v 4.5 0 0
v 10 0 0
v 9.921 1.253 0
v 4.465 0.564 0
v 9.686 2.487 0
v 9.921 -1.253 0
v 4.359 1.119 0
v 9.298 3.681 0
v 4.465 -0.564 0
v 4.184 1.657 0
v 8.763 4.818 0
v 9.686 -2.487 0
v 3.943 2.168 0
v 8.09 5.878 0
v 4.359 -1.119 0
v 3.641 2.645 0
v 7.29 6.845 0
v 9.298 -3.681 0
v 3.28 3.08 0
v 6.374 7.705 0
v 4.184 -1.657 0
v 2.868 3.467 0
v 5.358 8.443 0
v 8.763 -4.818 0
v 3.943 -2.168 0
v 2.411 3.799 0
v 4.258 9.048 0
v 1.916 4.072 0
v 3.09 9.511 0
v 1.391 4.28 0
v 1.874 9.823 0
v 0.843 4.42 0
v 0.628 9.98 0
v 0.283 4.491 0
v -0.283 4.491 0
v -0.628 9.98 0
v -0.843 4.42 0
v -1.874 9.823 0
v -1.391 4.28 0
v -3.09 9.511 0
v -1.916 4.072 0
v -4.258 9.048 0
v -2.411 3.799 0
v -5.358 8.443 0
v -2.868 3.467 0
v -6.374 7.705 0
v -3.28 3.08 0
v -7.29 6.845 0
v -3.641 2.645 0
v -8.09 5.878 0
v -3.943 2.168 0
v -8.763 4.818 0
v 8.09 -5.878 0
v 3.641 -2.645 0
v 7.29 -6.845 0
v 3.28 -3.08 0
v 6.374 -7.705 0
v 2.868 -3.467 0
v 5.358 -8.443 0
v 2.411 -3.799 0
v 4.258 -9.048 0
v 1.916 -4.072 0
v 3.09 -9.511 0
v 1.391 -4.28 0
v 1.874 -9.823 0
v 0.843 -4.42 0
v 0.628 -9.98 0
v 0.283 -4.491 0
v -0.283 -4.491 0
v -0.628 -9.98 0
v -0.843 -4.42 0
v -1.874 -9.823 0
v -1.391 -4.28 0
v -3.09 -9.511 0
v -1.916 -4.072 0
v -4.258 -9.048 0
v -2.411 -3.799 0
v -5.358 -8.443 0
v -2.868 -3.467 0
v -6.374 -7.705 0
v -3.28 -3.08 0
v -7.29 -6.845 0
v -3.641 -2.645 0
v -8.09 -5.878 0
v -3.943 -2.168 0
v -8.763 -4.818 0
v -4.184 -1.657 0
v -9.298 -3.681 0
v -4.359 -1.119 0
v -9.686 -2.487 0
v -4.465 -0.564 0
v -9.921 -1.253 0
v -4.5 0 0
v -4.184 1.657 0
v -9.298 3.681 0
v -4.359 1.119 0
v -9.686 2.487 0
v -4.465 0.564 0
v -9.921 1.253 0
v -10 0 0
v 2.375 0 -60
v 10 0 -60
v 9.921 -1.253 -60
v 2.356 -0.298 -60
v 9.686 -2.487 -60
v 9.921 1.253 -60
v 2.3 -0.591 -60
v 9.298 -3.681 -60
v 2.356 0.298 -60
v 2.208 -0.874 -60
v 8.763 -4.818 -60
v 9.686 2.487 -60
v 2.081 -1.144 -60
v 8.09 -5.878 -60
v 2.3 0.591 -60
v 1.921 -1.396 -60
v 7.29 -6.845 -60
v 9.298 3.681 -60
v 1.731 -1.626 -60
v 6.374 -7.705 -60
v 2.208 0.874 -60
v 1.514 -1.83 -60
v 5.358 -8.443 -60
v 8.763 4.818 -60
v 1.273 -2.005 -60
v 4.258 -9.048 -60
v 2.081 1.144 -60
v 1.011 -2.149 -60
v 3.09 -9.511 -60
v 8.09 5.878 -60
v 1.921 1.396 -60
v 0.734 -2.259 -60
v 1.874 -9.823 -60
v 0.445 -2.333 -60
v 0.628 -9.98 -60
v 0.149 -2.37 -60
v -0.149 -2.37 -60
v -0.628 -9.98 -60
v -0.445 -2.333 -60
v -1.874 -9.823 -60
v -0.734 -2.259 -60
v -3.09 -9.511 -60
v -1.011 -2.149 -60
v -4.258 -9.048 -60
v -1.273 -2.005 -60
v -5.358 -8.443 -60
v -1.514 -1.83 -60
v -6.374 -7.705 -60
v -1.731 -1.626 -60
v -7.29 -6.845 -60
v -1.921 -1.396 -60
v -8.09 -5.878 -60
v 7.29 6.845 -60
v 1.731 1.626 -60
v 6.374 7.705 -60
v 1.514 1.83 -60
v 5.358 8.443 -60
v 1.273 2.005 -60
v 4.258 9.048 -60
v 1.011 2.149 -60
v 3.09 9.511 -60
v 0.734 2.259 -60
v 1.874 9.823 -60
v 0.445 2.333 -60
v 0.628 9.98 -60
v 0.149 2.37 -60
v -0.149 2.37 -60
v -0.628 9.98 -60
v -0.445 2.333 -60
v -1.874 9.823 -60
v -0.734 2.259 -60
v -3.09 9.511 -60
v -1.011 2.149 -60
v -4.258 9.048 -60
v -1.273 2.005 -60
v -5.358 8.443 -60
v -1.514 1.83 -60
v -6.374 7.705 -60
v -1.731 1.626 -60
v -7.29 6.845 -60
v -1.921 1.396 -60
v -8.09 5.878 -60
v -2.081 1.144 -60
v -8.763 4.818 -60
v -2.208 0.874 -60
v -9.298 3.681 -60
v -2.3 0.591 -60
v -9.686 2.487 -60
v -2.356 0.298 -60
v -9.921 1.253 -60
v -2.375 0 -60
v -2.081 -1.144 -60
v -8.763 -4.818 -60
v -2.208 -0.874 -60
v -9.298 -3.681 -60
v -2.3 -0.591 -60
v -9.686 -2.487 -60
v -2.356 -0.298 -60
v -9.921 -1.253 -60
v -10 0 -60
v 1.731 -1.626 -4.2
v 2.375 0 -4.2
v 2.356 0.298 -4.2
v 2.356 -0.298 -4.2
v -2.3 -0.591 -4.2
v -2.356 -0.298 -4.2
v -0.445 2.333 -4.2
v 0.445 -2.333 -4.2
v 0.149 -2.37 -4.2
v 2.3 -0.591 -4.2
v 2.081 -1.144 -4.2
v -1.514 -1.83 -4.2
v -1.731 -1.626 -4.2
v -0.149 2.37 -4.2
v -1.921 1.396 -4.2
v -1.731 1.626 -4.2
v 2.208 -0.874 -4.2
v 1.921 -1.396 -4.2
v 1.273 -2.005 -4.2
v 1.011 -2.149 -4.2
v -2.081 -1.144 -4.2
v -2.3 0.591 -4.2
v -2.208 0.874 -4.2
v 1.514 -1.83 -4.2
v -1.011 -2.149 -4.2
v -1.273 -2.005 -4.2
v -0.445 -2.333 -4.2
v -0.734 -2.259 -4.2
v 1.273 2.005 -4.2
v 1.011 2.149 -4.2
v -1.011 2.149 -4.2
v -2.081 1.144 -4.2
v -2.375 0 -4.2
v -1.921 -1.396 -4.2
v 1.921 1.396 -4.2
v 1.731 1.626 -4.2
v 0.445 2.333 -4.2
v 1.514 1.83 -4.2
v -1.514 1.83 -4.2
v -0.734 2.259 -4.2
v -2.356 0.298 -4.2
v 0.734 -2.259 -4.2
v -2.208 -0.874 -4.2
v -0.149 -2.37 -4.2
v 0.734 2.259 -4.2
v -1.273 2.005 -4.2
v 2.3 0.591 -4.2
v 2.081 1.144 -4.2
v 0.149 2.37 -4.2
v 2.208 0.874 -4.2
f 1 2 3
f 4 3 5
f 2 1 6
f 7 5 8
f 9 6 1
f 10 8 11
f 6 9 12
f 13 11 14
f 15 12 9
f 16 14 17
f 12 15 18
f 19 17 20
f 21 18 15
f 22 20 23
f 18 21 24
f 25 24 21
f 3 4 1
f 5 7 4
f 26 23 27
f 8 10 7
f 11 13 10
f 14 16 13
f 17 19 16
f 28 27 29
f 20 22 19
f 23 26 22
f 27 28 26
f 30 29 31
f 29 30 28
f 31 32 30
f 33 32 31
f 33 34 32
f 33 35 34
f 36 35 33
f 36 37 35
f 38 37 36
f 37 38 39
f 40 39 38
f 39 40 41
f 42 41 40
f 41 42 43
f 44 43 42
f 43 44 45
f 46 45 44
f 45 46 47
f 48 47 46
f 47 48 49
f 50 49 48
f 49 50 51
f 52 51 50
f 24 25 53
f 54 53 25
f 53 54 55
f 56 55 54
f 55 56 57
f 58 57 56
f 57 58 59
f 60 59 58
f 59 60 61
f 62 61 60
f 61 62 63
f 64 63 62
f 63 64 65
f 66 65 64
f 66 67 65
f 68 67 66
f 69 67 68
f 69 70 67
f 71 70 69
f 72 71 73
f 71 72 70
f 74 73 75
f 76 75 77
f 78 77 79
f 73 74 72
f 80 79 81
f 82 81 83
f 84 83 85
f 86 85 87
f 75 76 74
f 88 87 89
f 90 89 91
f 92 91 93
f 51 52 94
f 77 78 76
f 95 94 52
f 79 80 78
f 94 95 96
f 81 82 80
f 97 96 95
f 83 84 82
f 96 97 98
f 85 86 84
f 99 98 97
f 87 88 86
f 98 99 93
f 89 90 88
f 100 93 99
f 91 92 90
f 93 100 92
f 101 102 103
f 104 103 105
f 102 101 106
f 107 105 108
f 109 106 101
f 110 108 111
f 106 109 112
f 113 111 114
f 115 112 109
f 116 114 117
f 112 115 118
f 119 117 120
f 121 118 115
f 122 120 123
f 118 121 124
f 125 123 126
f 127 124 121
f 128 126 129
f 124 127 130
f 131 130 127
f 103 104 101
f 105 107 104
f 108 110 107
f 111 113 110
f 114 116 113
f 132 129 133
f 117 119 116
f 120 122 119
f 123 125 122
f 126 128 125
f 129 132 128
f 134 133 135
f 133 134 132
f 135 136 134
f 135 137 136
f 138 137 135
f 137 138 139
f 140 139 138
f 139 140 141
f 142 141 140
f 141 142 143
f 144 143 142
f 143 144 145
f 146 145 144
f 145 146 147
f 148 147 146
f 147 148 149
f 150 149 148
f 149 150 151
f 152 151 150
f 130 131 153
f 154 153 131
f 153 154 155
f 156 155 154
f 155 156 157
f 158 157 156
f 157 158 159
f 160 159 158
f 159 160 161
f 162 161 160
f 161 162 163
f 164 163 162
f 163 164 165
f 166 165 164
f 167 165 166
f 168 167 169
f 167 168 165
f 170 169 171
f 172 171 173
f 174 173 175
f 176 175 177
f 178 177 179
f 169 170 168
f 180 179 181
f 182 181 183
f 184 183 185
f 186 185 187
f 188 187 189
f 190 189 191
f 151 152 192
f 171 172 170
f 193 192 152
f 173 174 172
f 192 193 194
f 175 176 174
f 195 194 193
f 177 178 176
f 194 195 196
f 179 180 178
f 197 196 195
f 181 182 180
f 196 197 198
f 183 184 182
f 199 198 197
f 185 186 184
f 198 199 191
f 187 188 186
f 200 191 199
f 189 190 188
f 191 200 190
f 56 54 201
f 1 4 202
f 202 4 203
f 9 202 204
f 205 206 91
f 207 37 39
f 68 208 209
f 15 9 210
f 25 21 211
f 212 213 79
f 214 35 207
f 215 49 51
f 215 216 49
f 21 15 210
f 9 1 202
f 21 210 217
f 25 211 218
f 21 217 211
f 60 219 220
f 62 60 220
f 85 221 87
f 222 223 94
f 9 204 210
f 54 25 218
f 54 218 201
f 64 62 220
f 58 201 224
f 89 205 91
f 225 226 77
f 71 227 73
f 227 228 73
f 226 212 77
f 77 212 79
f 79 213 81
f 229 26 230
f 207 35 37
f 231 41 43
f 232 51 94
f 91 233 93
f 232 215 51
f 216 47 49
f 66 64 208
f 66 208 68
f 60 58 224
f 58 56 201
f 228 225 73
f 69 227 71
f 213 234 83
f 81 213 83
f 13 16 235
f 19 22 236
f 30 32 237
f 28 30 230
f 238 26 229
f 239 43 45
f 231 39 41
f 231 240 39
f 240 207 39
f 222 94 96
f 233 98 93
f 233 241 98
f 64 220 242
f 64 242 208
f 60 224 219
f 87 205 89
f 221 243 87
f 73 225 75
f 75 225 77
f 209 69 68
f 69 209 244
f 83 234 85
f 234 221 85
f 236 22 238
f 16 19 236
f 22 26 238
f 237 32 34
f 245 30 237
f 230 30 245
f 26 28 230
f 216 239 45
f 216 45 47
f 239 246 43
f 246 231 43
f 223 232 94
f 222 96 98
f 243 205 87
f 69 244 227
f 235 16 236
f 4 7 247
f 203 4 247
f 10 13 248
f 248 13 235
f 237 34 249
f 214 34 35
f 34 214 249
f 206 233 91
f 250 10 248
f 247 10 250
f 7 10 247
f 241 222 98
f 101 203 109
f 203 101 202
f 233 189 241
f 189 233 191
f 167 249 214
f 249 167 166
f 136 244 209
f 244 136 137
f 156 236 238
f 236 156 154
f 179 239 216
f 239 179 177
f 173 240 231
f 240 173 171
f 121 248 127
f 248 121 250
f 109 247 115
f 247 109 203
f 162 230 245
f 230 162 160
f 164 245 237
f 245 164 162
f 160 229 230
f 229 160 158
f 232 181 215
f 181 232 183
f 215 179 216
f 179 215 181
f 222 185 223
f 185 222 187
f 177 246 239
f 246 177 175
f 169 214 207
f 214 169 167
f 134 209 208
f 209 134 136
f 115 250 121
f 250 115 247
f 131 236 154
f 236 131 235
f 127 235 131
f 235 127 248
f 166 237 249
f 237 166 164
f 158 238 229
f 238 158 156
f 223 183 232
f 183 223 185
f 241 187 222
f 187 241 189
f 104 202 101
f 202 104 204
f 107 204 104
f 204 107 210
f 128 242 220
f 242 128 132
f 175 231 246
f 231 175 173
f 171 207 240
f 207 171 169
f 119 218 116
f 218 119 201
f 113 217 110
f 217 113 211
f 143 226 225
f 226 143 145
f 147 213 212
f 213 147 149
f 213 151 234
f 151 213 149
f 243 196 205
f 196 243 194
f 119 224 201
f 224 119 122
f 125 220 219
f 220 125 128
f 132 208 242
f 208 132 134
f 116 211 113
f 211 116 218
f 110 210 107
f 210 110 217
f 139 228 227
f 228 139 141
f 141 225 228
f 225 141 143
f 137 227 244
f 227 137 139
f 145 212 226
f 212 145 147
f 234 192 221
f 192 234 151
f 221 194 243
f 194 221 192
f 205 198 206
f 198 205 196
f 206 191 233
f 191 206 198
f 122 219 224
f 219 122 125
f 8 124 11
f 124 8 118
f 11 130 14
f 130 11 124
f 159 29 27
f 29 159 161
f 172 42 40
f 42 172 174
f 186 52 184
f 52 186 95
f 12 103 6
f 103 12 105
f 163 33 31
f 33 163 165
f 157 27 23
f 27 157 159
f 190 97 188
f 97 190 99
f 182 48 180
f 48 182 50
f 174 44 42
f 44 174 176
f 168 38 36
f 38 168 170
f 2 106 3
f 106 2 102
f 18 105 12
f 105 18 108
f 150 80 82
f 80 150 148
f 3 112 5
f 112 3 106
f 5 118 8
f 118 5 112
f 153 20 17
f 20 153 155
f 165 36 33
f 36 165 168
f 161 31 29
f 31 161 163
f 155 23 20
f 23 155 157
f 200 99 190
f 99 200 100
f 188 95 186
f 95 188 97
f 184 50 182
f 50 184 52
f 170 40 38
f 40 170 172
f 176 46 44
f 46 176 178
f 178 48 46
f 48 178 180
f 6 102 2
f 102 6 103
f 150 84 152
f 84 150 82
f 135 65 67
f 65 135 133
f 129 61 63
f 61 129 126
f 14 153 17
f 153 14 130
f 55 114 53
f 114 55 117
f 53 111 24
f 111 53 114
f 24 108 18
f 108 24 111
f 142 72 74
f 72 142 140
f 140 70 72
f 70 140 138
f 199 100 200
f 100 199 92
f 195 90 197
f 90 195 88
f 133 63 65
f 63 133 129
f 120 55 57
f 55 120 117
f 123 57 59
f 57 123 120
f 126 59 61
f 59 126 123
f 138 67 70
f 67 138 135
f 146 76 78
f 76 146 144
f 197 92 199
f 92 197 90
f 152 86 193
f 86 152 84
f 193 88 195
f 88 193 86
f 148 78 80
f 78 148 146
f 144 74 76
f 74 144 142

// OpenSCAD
$fn = 50;


difference() {
	union() {
		translate(v = [0, 0, -60.0000000000]) {
			cylinder(h = 60, r = 10.0000000000);
		}
		cylinder(h = 0, r = 16.0000000000);
	}
	union() {
		translate(v = [0, 0, 0]) {
			rotate(a = [0, 0, 0]) {
				difference() {
					union() {
						#translate(v = [0, 0, -60.0000000000]) {
							cylinder(h = 60, r = 2.2500000000);
						}
						#translate(v = [0, 0, -4.2000000000]) {
							cylinder(h = 4.2000000000, r1 = 2.3750000000, r2 = 4.5000000000);
						}
						#translate(v = [0, 0, -60.0000000000]) {
							cylinder(h = 60, r = 2.3750000000);
						}
						#translate(v = [0, 0, -60.0000000000]) {
							cylinder(h = 60, r = 2.2500000000);
						}
					}
					union();
				}
			}
		}
	}
}
